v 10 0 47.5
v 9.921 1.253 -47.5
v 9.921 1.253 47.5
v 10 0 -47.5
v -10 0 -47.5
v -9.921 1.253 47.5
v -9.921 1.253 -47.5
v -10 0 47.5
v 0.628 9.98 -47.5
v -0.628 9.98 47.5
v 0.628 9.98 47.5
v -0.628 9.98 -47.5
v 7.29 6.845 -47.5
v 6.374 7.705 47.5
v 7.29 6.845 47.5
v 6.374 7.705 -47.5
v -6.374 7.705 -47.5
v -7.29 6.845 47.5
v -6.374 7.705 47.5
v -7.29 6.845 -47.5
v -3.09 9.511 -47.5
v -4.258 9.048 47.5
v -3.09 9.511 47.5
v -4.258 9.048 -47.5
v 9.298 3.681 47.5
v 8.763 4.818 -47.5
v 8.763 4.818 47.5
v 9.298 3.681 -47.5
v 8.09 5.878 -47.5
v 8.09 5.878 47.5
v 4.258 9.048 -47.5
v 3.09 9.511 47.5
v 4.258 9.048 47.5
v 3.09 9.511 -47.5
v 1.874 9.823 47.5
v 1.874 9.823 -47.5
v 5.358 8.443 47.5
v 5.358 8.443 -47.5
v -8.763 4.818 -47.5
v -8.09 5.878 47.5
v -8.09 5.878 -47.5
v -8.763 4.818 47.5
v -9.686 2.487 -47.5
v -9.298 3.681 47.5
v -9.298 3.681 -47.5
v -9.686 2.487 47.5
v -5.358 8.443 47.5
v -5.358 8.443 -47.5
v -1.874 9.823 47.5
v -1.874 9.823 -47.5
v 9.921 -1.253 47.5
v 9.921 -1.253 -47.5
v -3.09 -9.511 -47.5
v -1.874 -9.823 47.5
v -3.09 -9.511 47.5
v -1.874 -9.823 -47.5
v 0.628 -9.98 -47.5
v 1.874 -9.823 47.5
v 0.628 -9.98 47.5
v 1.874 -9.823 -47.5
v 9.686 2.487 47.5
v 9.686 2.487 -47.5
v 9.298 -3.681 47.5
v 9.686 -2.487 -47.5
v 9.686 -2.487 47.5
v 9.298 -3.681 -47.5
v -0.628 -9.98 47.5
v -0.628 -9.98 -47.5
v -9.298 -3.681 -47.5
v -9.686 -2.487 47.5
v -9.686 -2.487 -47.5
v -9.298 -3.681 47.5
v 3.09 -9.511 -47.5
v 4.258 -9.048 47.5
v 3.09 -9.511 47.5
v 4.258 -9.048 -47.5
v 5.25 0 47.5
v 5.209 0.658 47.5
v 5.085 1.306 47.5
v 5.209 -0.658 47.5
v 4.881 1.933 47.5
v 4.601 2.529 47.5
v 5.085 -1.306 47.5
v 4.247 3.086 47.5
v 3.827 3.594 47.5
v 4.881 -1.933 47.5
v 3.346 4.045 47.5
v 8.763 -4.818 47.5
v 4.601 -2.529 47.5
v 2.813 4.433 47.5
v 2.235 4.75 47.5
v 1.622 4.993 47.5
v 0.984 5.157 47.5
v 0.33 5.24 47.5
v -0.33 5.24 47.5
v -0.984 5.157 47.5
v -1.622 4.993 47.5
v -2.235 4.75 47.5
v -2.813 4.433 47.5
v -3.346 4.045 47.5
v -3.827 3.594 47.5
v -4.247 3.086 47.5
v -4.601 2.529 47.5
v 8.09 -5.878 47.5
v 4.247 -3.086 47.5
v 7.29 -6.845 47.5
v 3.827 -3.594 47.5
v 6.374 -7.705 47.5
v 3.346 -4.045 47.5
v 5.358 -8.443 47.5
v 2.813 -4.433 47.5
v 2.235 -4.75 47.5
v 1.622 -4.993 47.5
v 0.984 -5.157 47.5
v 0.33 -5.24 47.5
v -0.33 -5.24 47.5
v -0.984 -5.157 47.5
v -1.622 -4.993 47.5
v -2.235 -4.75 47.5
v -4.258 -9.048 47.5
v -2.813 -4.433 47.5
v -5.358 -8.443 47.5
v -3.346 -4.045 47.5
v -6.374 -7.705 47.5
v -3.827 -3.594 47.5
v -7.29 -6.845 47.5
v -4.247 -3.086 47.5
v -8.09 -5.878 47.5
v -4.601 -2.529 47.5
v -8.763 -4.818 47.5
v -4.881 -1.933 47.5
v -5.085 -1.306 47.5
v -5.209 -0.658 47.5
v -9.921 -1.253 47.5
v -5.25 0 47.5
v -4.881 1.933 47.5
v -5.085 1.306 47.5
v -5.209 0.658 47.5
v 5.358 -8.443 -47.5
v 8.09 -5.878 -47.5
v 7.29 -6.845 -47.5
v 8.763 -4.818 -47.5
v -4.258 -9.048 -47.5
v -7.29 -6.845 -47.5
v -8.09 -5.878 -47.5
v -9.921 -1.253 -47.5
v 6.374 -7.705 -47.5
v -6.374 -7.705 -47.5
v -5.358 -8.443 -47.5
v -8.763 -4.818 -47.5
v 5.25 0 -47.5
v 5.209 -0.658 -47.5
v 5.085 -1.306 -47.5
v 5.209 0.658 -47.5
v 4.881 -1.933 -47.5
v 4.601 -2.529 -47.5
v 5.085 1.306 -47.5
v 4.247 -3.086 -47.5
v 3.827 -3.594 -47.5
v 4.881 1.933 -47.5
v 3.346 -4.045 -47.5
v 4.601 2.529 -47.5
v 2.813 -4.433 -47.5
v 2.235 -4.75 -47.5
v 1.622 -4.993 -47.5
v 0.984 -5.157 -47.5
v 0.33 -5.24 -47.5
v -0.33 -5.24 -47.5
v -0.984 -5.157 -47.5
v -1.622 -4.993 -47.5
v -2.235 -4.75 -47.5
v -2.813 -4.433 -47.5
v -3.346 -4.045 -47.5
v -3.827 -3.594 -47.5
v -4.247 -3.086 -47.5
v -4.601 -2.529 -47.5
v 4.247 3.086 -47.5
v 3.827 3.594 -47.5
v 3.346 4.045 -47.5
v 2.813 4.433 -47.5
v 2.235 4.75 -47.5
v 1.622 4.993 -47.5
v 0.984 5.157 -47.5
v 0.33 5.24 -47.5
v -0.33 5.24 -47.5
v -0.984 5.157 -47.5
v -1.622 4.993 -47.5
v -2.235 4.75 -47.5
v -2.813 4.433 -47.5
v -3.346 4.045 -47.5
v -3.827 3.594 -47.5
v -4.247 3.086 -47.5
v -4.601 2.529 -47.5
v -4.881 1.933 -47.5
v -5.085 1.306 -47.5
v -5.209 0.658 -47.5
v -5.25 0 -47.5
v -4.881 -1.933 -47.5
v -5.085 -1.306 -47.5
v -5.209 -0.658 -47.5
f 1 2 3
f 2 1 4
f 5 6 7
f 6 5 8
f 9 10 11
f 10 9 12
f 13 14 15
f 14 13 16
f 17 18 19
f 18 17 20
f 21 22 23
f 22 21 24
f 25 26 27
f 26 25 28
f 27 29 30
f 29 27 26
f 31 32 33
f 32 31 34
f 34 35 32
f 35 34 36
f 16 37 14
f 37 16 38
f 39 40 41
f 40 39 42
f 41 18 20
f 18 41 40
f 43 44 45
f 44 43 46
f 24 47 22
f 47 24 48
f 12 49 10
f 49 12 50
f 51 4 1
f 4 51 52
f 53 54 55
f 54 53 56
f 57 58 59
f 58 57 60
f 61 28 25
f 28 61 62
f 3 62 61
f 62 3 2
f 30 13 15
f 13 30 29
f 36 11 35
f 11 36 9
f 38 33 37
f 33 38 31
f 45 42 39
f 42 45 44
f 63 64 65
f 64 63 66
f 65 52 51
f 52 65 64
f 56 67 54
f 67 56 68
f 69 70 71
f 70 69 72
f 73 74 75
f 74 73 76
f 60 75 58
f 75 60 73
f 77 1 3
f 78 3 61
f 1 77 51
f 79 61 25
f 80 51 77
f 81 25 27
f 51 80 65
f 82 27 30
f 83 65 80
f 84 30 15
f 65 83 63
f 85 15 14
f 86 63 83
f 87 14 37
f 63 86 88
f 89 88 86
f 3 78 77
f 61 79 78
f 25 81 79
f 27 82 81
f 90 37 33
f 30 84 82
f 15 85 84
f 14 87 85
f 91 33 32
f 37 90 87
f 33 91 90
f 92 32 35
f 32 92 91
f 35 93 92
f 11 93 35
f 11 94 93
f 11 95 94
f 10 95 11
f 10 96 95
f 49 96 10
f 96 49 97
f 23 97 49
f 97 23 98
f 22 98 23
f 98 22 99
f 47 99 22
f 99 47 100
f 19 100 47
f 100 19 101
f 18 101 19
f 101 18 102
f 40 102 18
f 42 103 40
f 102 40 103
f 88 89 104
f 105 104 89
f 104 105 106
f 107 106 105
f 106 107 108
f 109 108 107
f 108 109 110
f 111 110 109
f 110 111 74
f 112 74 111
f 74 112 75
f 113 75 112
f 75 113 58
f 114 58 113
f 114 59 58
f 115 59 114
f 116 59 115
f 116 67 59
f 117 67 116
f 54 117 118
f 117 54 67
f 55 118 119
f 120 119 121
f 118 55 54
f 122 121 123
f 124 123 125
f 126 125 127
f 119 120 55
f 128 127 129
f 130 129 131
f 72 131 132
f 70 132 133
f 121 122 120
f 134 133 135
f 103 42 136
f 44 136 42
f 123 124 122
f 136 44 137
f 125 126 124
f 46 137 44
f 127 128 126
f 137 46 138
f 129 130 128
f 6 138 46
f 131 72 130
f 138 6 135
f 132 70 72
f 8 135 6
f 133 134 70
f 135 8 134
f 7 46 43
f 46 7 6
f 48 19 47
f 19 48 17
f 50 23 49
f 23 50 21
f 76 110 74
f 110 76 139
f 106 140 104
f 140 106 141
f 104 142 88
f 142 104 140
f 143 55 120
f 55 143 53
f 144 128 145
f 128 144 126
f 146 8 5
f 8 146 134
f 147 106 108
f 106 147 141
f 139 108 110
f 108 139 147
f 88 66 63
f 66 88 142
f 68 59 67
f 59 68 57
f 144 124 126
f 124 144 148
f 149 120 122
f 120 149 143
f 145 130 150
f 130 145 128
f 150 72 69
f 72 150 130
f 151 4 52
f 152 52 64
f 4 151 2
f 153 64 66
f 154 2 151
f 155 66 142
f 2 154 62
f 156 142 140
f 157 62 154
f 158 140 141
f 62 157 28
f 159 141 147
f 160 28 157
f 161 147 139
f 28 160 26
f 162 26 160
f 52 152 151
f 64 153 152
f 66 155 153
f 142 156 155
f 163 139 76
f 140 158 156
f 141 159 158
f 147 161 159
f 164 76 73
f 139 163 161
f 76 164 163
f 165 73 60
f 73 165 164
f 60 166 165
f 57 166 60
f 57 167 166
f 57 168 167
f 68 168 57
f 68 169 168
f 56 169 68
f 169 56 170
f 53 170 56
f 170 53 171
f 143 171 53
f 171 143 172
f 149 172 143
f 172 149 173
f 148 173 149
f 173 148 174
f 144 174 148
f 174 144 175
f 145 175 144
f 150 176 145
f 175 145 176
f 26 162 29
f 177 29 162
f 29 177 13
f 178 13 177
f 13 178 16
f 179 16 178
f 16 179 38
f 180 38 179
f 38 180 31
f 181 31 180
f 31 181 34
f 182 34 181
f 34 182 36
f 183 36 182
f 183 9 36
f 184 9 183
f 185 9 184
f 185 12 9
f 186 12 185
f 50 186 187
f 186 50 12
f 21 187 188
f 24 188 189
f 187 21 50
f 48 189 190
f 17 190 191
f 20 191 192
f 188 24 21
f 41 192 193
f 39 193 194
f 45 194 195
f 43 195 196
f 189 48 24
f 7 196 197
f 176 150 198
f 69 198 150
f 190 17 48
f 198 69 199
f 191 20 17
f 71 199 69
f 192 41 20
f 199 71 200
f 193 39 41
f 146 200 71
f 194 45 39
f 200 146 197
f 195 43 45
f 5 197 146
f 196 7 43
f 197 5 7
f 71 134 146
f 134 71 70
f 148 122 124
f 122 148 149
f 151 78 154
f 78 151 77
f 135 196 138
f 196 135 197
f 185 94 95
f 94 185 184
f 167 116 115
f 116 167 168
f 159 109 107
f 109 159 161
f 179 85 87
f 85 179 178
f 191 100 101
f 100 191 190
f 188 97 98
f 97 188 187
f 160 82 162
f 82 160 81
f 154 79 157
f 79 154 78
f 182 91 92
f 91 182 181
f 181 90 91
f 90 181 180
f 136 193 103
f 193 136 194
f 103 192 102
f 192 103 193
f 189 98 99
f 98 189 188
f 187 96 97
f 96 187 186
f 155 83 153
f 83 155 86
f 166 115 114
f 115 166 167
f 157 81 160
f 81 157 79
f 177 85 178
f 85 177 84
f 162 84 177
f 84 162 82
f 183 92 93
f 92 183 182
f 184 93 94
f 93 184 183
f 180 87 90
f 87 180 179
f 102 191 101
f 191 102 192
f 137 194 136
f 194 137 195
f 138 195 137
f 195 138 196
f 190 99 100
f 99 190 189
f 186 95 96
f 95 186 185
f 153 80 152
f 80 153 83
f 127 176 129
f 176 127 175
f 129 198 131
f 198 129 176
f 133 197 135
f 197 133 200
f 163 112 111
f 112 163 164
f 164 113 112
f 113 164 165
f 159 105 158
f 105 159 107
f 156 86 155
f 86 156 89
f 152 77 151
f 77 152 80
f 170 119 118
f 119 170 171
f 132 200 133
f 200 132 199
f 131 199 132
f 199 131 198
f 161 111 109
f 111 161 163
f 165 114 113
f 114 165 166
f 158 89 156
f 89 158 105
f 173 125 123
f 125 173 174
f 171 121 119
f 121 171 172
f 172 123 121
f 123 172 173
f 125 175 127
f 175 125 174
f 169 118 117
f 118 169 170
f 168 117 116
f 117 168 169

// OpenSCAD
$fn = 50;


difference() {
	union() {
		translate(v = [0, 0, -47.5000000000]) {
			cylinder(h = 95, r = 10.0000000000);
		}
	}
	union() {
		translate(v = [0, 0, -100.0000000000]) {
			cylinder(h = 200, r = 5.2500000000);
		}
	}
}
